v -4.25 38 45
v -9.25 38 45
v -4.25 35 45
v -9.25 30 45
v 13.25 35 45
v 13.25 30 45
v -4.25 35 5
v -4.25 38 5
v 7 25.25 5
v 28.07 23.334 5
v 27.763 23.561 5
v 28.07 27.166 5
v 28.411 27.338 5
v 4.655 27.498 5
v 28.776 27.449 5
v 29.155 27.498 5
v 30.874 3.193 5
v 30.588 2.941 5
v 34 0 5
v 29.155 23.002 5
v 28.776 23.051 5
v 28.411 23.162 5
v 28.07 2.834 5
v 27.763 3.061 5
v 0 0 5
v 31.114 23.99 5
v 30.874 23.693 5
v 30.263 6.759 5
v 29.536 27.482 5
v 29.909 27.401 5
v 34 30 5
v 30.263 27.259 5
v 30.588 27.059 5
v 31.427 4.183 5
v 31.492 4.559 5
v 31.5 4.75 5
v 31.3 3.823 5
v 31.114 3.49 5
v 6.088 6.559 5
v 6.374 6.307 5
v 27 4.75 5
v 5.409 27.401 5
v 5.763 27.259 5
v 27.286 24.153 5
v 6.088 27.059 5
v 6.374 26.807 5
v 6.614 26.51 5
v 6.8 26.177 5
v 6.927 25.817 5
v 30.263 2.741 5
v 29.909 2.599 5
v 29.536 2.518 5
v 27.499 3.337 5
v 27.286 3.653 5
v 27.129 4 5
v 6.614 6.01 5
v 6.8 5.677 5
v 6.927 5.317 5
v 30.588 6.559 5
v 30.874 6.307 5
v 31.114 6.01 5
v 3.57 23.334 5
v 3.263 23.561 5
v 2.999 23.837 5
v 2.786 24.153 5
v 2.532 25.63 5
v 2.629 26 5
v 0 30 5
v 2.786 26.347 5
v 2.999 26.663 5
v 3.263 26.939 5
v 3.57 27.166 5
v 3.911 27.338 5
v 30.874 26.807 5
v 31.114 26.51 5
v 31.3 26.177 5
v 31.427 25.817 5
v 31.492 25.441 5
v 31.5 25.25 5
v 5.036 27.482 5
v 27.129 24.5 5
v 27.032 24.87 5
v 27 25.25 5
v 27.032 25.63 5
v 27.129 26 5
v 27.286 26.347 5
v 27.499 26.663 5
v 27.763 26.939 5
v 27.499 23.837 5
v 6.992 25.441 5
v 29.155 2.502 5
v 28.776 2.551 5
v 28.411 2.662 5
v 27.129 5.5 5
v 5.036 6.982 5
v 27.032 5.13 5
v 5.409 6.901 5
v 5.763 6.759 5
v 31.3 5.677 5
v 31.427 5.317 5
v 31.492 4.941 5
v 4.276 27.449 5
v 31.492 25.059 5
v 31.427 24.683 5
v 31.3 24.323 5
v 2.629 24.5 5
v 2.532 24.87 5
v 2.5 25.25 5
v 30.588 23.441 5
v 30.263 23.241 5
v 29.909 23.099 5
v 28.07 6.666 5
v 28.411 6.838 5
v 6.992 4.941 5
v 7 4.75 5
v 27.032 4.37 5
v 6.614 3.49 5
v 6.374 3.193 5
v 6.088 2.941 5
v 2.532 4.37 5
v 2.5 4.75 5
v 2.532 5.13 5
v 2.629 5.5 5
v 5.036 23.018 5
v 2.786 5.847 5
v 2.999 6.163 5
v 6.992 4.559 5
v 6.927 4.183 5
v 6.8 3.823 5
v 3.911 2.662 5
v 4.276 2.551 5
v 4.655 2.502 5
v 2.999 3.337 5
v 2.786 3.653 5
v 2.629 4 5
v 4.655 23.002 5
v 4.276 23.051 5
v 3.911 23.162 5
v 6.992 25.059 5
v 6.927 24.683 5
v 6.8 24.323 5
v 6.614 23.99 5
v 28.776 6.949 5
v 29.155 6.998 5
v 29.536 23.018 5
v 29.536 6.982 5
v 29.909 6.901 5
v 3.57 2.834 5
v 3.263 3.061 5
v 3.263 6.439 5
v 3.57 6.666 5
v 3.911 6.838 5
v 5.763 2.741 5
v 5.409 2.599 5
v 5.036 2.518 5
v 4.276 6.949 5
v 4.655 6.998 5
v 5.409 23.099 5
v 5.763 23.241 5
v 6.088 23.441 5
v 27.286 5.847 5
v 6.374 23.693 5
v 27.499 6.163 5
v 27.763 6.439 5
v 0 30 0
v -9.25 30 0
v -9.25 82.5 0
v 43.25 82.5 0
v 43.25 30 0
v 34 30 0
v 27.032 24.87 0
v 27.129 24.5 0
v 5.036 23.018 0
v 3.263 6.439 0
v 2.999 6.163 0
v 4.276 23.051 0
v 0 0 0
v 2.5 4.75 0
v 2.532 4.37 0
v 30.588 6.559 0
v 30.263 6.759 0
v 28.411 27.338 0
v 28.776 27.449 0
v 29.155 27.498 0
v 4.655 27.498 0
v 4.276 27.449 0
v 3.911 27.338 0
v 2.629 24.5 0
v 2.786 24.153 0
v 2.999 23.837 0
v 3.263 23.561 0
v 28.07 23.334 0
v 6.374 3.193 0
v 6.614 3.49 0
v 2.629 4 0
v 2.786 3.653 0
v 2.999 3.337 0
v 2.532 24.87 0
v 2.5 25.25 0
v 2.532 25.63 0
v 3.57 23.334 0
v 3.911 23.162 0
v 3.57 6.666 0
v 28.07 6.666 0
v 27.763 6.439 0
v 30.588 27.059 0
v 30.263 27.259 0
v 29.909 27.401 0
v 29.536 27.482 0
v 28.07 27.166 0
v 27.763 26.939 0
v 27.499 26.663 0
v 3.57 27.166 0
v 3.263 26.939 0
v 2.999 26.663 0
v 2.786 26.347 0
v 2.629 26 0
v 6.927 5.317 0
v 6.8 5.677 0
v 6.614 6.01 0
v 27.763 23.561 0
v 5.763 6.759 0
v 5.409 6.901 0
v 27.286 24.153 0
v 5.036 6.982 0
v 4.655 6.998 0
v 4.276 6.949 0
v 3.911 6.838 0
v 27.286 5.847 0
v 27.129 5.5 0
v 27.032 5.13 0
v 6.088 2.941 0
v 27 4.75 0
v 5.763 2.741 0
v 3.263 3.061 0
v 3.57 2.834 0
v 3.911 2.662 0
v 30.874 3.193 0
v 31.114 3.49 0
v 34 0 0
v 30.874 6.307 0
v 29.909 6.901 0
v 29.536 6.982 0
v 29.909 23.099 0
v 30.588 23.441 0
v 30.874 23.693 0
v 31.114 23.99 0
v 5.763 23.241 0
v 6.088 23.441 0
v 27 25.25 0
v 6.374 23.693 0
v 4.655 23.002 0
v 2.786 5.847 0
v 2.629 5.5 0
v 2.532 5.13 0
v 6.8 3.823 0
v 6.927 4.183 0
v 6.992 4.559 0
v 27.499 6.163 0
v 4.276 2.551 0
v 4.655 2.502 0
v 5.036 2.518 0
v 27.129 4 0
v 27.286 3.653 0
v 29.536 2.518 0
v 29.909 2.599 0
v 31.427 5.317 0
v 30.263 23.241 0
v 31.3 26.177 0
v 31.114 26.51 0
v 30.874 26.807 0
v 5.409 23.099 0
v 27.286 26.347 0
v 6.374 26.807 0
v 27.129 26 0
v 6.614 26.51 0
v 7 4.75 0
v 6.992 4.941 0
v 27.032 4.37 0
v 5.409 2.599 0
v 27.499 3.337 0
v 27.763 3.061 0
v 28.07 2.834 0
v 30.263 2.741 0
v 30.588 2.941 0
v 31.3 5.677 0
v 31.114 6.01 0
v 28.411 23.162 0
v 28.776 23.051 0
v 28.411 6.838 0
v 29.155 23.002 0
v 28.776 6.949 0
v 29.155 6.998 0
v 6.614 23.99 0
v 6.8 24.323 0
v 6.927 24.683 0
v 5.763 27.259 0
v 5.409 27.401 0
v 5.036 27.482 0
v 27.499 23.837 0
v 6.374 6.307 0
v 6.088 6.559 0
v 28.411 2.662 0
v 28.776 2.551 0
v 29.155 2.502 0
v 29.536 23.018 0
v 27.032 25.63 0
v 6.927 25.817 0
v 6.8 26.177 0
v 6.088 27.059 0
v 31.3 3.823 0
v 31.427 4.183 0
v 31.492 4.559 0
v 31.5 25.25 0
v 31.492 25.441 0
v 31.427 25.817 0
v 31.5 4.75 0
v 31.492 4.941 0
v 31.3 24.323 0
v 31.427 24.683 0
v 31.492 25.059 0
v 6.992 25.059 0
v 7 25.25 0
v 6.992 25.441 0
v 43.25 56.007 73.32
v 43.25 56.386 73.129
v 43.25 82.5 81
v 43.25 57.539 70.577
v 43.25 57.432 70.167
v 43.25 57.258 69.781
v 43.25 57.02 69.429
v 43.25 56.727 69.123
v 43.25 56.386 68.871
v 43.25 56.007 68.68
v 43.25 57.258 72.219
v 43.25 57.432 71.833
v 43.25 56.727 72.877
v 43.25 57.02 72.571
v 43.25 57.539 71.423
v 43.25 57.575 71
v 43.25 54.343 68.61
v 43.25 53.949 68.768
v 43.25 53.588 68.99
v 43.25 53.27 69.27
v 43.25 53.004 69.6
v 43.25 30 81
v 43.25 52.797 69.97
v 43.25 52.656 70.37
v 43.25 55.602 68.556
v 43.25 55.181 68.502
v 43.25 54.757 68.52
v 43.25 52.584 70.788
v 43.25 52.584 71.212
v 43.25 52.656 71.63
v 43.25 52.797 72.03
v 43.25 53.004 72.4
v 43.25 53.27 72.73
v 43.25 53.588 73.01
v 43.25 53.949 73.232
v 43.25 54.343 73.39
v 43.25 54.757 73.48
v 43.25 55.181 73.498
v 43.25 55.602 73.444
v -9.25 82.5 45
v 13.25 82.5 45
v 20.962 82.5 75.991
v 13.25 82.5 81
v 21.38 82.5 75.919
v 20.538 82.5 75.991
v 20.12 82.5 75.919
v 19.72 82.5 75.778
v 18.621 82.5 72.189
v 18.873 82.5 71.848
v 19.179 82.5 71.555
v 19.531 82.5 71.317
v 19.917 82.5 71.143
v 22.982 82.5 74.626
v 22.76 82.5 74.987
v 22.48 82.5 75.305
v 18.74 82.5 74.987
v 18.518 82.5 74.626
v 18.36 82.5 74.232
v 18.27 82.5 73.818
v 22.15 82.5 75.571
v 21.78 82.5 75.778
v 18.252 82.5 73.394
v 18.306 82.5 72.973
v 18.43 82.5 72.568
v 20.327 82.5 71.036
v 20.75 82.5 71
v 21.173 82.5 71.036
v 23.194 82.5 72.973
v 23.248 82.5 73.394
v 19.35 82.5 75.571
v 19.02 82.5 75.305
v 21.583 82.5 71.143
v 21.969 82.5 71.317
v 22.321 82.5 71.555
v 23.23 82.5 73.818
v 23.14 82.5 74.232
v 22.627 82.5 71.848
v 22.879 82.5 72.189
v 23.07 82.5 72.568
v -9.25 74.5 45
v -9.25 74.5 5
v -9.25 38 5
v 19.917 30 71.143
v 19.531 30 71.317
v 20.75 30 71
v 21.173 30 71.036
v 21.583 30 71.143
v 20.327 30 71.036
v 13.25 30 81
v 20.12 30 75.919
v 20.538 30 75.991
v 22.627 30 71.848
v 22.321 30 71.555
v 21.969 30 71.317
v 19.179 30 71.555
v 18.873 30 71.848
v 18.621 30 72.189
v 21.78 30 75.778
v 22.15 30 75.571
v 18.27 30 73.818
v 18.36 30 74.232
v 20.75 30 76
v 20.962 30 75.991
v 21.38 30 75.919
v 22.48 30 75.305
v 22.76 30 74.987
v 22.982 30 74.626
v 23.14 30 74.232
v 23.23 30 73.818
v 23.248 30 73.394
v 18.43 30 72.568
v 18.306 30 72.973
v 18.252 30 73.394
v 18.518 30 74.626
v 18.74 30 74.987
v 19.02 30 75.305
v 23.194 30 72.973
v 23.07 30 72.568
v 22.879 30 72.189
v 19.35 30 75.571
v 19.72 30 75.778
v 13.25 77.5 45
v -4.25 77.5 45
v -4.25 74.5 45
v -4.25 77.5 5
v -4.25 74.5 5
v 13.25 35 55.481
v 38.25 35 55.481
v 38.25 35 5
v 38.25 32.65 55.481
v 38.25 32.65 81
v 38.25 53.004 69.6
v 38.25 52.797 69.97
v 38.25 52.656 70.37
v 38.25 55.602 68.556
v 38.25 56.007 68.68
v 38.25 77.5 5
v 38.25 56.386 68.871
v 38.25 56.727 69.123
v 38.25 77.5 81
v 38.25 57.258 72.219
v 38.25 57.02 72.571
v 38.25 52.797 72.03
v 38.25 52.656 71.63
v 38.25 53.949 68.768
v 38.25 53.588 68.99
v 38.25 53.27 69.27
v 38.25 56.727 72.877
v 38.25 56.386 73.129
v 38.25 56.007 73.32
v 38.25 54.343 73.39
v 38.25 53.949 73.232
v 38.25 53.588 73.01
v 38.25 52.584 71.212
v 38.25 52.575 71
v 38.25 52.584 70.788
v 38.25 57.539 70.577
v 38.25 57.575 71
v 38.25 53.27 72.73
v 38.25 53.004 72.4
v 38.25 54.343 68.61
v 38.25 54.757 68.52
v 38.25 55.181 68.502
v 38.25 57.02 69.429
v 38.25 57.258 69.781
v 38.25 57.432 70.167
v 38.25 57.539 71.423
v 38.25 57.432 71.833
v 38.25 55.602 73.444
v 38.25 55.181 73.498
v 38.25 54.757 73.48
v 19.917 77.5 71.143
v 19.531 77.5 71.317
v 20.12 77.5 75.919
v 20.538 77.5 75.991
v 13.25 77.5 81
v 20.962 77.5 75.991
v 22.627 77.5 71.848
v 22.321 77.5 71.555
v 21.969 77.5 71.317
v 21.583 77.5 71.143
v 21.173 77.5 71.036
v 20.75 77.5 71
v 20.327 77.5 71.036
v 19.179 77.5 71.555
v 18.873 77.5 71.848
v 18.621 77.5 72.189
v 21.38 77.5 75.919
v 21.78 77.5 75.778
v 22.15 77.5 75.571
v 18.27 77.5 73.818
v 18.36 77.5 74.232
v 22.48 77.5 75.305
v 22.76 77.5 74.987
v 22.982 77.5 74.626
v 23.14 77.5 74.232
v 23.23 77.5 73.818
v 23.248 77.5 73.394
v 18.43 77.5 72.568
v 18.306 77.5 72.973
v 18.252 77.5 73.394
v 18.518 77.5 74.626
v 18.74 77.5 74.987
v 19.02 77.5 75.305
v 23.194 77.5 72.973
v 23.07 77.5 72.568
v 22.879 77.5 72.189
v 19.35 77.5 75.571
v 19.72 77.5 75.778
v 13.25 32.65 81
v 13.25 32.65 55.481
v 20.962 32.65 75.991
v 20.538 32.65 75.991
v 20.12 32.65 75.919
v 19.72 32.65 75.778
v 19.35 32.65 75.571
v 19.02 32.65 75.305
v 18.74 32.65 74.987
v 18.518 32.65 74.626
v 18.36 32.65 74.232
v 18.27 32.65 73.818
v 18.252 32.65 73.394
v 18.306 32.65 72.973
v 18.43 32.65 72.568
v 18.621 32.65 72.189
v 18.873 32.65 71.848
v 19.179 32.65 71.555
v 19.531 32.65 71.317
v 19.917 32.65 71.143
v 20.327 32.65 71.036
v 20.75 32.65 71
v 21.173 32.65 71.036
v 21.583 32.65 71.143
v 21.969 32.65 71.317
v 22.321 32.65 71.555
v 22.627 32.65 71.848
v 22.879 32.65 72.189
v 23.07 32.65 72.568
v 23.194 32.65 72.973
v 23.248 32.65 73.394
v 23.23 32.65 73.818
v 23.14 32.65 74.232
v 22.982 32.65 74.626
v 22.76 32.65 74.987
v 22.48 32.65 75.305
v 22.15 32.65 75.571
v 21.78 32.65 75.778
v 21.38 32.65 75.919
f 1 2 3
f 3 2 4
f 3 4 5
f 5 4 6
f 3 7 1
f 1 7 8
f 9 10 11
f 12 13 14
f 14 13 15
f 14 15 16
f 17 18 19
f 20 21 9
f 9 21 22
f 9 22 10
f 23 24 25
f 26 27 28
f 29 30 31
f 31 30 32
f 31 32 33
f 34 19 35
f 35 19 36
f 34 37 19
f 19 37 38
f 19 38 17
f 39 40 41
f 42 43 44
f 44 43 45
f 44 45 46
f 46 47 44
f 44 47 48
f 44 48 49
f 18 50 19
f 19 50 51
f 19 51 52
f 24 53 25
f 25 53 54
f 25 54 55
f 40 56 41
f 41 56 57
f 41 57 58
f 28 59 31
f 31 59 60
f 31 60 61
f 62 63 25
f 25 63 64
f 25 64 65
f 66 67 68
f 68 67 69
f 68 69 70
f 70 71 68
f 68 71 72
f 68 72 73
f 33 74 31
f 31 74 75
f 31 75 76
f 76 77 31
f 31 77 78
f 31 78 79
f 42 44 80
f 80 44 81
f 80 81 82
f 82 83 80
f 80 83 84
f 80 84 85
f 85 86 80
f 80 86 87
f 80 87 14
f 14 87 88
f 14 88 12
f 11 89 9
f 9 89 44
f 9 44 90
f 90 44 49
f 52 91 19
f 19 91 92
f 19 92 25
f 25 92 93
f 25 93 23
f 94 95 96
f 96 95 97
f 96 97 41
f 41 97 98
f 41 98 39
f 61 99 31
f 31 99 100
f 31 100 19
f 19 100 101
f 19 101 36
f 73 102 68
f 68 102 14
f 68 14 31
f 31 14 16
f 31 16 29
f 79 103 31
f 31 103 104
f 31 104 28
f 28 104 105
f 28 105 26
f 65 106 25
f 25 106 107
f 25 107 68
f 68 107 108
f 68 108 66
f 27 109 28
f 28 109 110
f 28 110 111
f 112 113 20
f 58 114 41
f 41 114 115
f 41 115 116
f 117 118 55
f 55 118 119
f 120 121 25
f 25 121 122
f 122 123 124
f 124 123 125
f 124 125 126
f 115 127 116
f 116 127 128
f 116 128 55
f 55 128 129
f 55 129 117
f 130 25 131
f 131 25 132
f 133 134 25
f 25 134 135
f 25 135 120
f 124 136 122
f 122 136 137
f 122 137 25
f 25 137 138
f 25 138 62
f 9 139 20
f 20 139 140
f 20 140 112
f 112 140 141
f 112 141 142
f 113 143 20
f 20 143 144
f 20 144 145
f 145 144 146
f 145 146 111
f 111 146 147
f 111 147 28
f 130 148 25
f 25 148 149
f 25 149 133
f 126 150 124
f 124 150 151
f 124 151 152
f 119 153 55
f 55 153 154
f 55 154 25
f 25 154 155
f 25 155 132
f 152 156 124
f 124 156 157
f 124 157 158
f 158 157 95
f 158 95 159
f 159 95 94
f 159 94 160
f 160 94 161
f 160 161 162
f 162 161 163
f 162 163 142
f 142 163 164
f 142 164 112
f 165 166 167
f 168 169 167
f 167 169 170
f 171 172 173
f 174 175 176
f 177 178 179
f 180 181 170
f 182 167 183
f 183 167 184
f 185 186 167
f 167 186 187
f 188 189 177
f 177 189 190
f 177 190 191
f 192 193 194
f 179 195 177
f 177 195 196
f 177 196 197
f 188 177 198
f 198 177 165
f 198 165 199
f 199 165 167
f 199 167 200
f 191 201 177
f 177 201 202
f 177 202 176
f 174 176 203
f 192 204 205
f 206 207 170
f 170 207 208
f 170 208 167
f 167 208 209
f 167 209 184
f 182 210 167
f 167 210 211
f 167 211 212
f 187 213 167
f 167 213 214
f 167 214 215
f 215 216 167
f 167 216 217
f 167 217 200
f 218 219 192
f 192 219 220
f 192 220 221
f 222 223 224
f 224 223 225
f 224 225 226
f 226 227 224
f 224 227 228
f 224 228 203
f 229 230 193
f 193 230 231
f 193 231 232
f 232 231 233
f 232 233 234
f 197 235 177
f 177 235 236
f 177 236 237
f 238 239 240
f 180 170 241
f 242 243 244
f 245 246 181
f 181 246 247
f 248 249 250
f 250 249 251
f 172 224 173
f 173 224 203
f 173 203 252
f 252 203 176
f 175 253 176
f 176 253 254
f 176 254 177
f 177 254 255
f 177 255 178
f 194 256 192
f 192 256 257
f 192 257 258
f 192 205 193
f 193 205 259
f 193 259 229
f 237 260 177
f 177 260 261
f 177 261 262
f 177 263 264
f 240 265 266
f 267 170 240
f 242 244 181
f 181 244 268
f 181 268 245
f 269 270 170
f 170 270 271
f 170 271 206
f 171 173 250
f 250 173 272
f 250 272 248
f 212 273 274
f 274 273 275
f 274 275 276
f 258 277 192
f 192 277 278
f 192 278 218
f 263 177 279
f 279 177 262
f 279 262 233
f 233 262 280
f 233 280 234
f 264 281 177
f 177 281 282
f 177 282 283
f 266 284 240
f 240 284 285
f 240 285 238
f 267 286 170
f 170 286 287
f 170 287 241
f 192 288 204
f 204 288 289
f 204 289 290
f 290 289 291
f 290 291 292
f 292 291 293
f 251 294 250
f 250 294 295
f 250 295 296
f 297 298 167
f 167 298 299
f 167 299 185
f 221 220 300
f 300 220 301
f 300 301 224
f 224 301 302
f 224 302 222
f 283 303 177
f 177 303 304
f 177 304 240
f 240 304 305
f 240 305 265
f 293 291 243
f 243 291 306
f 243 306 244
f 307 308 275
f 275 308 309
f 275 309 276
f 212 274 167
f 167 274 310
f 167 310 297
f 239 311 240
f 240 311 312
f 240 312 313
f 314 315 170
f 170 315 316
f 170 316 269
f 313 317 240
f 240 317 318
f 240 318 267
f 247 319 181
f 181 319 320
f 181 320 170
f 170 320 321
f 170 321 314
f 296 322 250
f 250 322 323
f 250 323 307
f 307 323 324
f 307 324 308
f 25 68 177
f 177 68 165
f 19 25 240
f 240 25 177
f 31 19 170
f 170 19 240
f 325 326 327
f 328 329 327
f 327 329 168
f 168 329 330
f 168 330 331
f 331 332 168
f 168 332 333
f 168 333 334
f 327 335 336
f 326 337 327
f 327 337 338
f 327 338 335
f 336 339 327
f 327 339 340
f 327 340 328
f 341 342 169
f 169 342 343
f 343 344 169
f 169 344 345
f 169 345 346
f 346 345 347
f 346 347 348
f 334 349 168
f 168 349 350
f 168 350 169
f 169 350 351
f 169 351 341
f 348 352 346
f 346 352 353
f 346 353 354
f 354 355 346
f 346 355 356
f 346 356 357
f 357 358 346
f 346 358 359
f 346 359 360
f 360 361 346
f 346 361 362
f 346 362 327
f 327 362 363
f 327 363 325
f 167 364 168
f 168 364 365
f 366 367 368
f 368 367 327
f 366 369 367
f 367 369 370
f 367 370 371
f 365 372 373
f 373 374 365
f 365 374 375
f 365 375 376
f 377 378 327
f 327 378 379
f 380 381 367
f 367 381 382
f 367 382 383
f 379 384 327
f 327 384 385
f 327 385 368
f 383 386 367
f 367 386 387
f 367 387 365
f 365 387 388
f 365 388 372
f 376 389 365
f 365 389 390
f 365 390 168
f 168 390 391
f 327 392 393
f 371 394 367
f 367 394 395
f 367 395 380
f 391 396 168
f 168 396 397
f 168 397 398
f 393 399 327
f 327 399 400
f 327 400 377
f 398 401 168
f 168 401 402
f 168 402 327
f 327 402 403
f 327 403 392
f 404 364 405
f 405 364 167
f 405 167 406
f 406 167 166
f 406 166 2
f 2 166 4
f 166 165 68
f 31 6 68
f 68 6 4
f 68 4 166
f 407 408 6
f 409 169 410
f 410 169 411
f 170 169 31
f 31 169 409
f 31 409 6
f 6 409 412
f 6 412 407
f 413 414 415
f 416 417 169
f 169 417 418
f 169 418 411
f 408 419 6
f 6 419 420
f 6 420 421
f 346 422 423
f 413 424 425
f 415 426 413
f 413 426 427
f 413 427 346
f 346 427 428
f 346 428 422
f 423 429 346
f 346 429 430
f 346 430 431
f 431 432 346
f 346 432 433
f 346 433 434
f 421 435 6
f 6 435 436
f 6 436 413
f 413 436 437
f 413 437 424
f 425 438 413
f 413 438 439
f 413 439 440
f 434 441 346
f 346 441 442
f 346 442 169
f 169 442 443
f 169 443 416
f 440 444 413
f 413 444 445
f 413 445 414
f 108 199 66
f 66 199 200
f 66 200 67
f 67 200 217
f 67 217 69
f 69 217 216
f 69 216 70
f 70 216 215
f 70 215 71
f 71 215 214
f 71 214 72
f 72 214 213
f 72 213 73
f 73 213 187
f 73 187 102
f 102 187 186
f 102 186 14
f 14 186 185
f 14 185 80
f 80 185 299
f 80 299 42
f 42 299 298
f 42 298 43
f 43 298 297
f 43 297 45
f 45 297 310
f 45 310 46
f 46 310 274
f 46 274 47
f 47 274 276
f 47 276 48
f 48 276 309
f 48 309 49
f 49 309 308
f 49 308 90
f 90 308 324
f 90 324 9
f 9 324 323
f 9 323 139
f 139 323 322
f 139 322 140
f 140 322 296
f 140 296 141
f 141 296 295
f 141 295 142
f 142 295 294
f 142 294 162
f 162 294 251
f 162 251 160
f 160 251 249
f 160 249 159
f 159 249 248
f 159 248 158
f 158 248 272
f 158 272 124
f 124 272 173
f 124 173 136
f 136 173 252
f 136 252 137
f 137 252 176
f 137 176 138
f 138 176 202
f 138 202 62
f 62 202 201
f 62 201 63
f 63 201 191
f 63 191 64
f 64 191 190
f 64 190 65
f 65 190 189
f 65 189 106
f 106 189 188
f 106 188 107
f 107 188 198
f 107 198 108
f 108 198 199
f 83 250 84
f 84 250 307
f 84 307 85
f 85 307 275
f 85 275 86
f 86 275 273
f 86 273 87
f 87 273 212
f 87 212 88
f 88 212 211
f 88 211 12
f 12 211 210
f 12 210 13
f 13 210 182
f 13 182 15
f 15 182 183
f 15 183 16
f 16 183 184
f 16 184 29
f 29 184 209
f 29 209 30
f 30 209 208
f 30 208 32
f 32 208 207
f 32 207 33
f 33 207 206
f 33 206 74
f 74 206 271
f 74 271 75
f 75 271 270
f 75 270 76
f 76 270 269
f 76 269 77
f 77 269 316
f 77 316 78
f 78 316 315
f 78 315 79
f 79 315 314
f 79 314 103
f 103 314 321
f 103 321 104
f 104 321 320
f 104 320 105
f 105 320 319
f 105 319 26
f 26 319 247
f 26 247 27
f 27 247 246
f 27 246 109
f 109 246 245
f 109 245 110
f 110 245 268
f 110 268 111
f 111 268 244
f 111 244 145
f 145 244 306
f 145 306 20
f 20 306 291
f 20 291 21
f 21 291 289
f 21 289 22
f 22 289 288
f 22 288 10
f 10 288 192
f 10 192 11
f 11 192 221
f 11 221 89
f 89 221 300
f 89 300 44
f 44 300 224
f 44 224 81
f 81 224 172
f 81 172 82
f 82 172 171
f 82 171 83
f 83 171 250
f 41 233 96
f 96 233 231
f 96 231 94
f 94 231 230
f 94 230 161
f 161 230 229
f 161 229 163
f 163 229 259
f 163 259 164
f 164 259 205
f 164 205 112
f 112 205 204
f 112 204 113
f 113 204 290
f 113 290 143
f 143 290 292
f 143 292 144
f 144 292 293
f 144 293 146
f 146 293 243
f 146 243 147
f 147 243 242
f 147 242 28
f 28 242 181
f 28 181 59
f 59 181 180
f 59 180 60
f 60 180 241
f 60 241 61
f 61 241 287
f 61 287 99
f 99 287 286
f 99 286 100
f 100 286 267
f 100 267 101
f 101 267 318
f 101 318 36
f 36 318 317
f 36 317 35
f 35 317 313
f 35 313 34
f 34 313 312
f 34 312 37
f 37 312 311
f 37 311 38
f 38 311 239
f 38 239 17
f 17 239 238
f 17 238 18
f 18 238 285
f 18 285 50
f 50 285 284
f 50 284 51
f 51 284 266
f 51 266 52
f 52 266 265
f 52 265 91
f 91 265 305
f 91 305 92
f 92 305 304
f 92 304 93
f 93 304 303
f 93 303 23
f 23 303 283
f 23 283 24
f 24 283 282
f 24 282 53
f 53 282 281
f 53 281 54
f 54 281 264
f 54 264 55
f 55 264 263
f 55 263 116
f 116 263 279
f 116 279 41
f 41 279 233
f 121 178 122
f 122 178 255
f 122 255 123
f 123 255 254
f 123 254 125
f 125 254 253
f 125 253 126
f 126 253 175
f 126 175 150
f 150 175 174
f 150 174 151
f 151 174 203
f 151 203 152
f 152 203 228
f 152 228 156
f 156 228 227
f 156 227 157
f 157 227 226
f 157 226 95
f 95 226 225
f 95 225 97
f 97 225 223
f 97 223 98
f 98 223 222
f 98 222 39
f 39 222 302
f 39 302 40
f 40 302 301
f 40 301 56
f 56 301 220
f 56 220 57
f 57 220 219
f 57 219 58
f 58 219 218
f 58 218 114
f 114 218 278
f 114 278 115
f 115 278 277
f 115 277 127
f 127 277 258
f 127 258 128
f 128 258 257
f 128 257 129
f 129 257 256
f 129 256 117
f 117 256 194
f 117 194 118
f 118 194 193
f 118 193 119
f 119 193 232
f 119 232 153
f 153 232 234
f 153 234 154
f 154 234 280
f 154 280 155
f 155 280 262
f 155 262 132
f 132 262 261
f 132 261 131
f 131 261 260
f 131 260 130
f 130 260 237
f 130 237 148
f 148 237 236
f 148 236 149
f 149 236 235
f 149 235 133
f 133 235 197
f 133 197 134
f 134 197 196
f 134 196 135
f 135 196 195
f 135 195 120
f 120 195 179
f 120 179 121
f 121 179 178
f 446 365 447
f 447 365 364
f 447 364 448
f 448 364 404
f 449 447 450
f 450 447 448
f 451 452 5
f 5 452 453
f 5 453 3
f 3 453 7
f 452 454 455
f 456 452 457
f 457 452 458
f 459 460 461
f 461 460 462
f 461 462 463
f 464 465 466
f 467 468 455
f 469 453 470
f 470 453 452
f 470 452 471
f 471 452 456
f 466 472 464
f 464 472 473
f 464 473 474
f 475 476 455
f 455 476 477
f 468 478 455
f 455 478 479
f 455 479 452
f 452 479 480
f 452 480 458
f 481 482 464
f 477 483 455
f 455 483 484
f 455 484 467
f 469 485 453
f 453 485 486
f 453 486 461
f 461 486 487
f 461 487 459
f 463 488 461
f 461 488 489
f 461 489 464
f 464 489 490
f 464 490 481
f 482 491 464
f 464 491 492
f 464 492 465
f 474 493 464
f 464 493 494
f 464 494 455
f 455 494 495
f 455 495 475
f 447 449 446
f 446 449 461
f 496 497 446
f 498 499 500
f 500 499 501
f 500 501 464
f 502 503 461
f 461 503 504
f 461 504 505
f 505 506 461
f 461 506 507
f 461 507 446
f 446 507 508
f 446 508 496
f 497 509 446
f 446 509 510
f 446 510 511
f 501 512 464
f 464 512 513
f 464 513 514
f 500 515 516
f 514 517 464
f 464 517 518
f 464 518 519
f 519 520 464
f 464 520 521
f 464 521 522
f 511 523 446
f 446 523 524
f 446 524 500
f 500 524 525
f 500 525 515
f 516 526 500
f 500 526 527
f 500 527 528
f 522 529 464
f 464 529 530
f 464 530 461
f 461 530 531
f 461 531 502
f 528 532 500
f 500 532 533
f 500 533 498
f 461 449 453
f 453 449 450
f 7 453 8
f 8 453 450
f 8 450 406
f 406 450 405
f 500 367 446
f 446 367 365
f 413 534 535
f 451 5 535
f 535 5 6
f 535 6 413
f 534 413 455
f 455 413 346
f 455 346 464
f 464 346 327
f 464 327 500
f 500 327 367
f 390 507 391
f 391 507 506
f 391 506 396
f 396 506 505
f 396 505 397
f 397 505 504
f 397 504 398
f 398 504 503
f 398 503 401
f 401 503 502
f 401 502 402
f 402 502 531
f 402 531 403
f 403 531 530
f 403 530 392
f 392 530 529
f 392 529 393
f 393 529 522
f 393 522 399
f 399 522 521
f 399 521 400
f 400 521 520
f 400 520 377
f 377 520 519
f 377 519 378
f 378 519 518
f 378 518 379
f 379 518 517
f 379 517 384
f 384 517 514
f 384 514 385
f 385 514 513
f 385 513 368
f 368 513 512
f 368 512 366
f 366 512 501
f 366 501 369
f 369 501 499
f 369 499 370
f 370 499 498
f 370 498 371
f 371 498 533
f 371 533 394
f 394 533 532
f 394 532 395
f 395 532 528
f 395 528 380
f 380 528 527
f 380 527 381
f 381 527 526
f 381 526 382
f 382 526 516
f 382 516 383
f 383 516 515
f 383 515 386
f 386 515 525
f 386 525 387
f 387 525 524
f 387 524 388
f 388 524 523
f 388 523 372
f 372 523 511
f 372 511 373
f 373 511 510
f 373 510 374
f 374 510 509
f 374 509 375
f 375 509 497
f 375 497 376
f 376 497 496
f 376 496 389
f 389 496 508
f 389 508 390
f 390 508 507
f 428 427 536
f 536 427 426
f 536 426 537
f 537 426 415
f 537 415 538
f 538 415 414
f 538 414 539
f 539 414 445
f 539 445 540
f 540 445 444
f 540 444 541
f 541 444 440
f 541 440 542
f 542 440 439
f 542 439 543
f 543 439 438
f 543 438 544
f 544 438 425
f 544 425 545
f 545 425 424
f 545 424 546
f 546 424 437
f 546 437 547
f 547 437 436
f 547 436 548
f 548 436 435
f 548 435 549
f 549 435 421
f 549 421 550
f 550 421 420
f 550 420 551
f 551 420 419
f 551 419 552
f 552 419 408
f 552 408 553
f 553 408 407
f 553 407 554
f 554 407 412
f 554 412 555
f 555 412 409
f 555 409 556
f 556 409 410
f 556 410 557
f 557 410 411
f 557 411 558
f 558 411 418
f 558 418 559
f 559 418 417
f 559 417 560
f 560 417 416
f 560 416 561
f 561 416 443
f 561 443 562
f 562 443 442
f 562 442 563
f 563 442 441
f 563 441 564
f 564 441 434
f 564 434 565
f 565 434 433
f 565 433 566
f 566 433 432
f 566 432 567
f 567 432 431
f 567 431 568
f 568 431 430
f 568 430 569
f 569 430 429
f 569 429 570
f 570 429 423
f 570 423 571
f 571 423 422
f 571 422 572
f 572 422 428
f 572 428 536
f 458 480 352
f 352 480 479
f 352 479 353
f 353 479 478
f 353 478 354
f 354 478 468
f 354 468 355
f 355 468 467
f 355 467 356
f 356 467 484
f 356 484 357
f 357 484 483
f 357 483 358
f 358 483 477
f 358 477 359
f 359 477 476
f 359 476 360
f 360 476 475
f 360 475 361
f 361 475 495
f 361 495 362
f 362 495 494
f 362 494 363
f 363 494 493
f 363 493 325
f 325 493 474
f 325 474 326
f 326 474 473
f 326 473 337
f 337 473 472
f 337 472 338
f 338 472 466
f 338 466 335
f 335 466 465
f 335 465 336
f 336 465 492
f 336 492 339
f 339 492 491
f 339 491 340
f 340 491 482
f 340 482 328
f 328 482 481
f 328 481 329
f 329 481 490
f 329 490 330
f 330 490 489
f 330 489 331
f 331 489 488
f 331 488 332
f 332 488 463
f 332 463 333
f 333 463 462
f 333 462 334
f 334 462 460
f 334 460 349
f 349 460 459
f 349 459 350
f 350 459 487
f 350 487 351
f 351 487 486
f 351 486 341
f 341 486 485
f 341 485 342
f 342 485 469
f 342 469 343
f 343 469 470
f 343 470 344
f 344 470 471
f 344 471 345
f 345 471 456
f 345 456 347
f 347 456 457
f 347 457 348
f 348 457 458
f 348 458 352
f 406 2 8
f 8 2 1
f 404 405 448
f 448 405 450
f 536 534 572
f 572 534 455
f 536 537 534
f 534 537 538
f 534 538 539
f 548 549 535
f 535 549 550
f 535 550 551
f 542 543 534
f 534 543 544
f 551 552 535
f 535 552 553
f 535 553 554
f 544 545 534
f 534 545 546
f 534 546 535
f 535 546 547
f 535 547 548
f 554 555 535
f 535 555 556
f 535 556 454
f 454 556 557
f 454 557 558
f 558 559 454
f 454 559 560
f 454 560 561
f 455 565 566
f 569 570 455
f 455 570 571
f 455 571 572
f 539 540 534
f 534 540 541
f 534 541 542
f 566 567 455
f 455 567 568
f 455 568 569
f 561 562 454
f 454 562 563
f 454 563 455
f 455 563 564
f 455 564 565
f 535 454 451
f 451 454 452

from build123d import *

# Parameters (mm, degrees)
SKETCH1_R               = 2.25
BOSS_EXTRUDE1_DEPTH     = 5
SKETCH2_W               = 52.5
SKETCH2_H               = 52.5
SKETCH2_W_2             = 42.5
SKETCH2_H_2             = 42.5
BOSS_EXTRUDE2_DEPTH     = 40
BOSS_EXTRUDE3_DEPTH     = 36
CUT_EXTRUDE2_DEPTH      = 121.157448791
CUT_EXTRUDE2_DEPTH_BACK = 121.157448791
SKETCH6_R               = 2.5
CUT_EXTRUDE3_DEPTH      = 127.97834461
CUT_EXTRUDE3_DEPTH_BACK = 127.97834461
SKETCH7_R               = 2.5
SKETCH8_W               = 40
SKETCH8_H               = 36.5
CUT_EXTRUDE4_DEPTH      = 24
SKETCH9_W               = 25
SKETCH9_H               = 25.519409936
CUT_EXTRUDE5_DEPTH      = 2.35


with BuildPart() as part:
    # Sketch1 → Boss-Extrude1 (new body)
    with BuildSketch(Plane.XY):
        Polygon((0, 30), (-9.25, 30), (-9.25, 82.5), (43.25, 82.5), (43.25, 30), (34, 30), (34, 0), (0, 0), align=None)
        with Locations((4.75, 25.25)):
            Circle(SKETCH1_R, mode=Mode.SUBTRACT)
        with Locations((29.25, 25.25)):
            Circle(SKETCH1_R, mode=Mode.SUBTRACT)
        with Locations((29.25, 4.75)):
            Circle(SKETCH1_R, mode=Mode.SUBTRACT)
        with Locations((4.75, 4.75)):
            Circle(SKETCH1_R, mode=Mode.SUBTRACT)
    extrude(amount=BOSS_EXTRUDE1_DEPTH)

    # Sketch2 → Boss-Extrude2 (add)
    with BuildSketch(Plane.XY.offset(5)):
        with Locations((17, 56.25)):
            Rectangle(SKETCH2_W, SKETCH2_H)
        with Locations((17, 56.25)):
            Rectangle(SKETCH2_W_2, SKETCH2_H_2, mode=Mode.SUBTRACT)
    extrude(amount=BOSS_EXTRUDE2_DEPTH)

    # Sketch5 → Boss-Extrude3 (add)
    with BuildSketch(Plane.XY.offset(45)):
        Polygon((43.25, 82.5), (43.25, 30), (13.25, 30), (13.25, 35), (38.25, 35), (38.25, 77.5), (13.25, 77.5), (13.25, 82.5), align=None)
    extrude(amount=BOSS_EXTRUDE3_DEPTH)

    # Sketch6 → Cut-Extrude2 (cut, two sides: drawn at the far end of the back side and taken through both)
    with BuildSketch(Plane.XZ.offset(-77.5).offset(-CUT_EXTRUDE2_DEPTH_BACK)):
        with Locations(Location((20.75, 73.5, 0), (0, 0, 270))):
            Circle(SKETCH6_R)
    extrude(amount=CUT_EXTRUDE2_DEPTH + CUT_EXTRUDE2_DEPTH_BACK, mode=Mode.SUBTRACT)

    # Sketch7 → Cut-Extrude3 (cut, two sides: drawn at the far end of the back side and taken through both)
    with BuildSketch(Plane(origin=(43.25, 0, 0), x_dir=(0, 0, -1), z_dir=(1, 0, 0)).offset(-CUT_EXTRUDE3_DEPTH_BACK)):
        with Locations(Location((-71, 55.075, 0), (0, 0, 90))):
            Circle(SKETCH7_R)
    extrude(amount=CUT_EXTRUDE3_DEPTH + CUT_EXTRUDE3_DEPTH_BACK, mode=Mode.SUBTRACT)

    # Sketch8 → Cut-Extrude4 (cut)
    with BuildSketch(Plane.ZY.offset(9.25)):
        with Locations((25, 56.25)):
            Rectangle(SKETCH8_W, SKETCH8_H)
    extrude(amount=-CUT_EXTRUDE4_DEPTH, mode=Mode.SUBTRACT)

    # Sketch9 → Cut-Extrude5 (cut)
    with BuildSketch(Plane(origin=(0, 35, 0), x_dir=(1, 0, 0), z_dir=(0, 1, 0))):
        with Locations((25.75, -68.240295032)):
            Rectangle(SKETCH9_W, SKETCH9_H)
    extrude(amount=-CUT_EXTRUDE5_DEPTH, mode=Mode.SUBTRACT)


solid = part.part
